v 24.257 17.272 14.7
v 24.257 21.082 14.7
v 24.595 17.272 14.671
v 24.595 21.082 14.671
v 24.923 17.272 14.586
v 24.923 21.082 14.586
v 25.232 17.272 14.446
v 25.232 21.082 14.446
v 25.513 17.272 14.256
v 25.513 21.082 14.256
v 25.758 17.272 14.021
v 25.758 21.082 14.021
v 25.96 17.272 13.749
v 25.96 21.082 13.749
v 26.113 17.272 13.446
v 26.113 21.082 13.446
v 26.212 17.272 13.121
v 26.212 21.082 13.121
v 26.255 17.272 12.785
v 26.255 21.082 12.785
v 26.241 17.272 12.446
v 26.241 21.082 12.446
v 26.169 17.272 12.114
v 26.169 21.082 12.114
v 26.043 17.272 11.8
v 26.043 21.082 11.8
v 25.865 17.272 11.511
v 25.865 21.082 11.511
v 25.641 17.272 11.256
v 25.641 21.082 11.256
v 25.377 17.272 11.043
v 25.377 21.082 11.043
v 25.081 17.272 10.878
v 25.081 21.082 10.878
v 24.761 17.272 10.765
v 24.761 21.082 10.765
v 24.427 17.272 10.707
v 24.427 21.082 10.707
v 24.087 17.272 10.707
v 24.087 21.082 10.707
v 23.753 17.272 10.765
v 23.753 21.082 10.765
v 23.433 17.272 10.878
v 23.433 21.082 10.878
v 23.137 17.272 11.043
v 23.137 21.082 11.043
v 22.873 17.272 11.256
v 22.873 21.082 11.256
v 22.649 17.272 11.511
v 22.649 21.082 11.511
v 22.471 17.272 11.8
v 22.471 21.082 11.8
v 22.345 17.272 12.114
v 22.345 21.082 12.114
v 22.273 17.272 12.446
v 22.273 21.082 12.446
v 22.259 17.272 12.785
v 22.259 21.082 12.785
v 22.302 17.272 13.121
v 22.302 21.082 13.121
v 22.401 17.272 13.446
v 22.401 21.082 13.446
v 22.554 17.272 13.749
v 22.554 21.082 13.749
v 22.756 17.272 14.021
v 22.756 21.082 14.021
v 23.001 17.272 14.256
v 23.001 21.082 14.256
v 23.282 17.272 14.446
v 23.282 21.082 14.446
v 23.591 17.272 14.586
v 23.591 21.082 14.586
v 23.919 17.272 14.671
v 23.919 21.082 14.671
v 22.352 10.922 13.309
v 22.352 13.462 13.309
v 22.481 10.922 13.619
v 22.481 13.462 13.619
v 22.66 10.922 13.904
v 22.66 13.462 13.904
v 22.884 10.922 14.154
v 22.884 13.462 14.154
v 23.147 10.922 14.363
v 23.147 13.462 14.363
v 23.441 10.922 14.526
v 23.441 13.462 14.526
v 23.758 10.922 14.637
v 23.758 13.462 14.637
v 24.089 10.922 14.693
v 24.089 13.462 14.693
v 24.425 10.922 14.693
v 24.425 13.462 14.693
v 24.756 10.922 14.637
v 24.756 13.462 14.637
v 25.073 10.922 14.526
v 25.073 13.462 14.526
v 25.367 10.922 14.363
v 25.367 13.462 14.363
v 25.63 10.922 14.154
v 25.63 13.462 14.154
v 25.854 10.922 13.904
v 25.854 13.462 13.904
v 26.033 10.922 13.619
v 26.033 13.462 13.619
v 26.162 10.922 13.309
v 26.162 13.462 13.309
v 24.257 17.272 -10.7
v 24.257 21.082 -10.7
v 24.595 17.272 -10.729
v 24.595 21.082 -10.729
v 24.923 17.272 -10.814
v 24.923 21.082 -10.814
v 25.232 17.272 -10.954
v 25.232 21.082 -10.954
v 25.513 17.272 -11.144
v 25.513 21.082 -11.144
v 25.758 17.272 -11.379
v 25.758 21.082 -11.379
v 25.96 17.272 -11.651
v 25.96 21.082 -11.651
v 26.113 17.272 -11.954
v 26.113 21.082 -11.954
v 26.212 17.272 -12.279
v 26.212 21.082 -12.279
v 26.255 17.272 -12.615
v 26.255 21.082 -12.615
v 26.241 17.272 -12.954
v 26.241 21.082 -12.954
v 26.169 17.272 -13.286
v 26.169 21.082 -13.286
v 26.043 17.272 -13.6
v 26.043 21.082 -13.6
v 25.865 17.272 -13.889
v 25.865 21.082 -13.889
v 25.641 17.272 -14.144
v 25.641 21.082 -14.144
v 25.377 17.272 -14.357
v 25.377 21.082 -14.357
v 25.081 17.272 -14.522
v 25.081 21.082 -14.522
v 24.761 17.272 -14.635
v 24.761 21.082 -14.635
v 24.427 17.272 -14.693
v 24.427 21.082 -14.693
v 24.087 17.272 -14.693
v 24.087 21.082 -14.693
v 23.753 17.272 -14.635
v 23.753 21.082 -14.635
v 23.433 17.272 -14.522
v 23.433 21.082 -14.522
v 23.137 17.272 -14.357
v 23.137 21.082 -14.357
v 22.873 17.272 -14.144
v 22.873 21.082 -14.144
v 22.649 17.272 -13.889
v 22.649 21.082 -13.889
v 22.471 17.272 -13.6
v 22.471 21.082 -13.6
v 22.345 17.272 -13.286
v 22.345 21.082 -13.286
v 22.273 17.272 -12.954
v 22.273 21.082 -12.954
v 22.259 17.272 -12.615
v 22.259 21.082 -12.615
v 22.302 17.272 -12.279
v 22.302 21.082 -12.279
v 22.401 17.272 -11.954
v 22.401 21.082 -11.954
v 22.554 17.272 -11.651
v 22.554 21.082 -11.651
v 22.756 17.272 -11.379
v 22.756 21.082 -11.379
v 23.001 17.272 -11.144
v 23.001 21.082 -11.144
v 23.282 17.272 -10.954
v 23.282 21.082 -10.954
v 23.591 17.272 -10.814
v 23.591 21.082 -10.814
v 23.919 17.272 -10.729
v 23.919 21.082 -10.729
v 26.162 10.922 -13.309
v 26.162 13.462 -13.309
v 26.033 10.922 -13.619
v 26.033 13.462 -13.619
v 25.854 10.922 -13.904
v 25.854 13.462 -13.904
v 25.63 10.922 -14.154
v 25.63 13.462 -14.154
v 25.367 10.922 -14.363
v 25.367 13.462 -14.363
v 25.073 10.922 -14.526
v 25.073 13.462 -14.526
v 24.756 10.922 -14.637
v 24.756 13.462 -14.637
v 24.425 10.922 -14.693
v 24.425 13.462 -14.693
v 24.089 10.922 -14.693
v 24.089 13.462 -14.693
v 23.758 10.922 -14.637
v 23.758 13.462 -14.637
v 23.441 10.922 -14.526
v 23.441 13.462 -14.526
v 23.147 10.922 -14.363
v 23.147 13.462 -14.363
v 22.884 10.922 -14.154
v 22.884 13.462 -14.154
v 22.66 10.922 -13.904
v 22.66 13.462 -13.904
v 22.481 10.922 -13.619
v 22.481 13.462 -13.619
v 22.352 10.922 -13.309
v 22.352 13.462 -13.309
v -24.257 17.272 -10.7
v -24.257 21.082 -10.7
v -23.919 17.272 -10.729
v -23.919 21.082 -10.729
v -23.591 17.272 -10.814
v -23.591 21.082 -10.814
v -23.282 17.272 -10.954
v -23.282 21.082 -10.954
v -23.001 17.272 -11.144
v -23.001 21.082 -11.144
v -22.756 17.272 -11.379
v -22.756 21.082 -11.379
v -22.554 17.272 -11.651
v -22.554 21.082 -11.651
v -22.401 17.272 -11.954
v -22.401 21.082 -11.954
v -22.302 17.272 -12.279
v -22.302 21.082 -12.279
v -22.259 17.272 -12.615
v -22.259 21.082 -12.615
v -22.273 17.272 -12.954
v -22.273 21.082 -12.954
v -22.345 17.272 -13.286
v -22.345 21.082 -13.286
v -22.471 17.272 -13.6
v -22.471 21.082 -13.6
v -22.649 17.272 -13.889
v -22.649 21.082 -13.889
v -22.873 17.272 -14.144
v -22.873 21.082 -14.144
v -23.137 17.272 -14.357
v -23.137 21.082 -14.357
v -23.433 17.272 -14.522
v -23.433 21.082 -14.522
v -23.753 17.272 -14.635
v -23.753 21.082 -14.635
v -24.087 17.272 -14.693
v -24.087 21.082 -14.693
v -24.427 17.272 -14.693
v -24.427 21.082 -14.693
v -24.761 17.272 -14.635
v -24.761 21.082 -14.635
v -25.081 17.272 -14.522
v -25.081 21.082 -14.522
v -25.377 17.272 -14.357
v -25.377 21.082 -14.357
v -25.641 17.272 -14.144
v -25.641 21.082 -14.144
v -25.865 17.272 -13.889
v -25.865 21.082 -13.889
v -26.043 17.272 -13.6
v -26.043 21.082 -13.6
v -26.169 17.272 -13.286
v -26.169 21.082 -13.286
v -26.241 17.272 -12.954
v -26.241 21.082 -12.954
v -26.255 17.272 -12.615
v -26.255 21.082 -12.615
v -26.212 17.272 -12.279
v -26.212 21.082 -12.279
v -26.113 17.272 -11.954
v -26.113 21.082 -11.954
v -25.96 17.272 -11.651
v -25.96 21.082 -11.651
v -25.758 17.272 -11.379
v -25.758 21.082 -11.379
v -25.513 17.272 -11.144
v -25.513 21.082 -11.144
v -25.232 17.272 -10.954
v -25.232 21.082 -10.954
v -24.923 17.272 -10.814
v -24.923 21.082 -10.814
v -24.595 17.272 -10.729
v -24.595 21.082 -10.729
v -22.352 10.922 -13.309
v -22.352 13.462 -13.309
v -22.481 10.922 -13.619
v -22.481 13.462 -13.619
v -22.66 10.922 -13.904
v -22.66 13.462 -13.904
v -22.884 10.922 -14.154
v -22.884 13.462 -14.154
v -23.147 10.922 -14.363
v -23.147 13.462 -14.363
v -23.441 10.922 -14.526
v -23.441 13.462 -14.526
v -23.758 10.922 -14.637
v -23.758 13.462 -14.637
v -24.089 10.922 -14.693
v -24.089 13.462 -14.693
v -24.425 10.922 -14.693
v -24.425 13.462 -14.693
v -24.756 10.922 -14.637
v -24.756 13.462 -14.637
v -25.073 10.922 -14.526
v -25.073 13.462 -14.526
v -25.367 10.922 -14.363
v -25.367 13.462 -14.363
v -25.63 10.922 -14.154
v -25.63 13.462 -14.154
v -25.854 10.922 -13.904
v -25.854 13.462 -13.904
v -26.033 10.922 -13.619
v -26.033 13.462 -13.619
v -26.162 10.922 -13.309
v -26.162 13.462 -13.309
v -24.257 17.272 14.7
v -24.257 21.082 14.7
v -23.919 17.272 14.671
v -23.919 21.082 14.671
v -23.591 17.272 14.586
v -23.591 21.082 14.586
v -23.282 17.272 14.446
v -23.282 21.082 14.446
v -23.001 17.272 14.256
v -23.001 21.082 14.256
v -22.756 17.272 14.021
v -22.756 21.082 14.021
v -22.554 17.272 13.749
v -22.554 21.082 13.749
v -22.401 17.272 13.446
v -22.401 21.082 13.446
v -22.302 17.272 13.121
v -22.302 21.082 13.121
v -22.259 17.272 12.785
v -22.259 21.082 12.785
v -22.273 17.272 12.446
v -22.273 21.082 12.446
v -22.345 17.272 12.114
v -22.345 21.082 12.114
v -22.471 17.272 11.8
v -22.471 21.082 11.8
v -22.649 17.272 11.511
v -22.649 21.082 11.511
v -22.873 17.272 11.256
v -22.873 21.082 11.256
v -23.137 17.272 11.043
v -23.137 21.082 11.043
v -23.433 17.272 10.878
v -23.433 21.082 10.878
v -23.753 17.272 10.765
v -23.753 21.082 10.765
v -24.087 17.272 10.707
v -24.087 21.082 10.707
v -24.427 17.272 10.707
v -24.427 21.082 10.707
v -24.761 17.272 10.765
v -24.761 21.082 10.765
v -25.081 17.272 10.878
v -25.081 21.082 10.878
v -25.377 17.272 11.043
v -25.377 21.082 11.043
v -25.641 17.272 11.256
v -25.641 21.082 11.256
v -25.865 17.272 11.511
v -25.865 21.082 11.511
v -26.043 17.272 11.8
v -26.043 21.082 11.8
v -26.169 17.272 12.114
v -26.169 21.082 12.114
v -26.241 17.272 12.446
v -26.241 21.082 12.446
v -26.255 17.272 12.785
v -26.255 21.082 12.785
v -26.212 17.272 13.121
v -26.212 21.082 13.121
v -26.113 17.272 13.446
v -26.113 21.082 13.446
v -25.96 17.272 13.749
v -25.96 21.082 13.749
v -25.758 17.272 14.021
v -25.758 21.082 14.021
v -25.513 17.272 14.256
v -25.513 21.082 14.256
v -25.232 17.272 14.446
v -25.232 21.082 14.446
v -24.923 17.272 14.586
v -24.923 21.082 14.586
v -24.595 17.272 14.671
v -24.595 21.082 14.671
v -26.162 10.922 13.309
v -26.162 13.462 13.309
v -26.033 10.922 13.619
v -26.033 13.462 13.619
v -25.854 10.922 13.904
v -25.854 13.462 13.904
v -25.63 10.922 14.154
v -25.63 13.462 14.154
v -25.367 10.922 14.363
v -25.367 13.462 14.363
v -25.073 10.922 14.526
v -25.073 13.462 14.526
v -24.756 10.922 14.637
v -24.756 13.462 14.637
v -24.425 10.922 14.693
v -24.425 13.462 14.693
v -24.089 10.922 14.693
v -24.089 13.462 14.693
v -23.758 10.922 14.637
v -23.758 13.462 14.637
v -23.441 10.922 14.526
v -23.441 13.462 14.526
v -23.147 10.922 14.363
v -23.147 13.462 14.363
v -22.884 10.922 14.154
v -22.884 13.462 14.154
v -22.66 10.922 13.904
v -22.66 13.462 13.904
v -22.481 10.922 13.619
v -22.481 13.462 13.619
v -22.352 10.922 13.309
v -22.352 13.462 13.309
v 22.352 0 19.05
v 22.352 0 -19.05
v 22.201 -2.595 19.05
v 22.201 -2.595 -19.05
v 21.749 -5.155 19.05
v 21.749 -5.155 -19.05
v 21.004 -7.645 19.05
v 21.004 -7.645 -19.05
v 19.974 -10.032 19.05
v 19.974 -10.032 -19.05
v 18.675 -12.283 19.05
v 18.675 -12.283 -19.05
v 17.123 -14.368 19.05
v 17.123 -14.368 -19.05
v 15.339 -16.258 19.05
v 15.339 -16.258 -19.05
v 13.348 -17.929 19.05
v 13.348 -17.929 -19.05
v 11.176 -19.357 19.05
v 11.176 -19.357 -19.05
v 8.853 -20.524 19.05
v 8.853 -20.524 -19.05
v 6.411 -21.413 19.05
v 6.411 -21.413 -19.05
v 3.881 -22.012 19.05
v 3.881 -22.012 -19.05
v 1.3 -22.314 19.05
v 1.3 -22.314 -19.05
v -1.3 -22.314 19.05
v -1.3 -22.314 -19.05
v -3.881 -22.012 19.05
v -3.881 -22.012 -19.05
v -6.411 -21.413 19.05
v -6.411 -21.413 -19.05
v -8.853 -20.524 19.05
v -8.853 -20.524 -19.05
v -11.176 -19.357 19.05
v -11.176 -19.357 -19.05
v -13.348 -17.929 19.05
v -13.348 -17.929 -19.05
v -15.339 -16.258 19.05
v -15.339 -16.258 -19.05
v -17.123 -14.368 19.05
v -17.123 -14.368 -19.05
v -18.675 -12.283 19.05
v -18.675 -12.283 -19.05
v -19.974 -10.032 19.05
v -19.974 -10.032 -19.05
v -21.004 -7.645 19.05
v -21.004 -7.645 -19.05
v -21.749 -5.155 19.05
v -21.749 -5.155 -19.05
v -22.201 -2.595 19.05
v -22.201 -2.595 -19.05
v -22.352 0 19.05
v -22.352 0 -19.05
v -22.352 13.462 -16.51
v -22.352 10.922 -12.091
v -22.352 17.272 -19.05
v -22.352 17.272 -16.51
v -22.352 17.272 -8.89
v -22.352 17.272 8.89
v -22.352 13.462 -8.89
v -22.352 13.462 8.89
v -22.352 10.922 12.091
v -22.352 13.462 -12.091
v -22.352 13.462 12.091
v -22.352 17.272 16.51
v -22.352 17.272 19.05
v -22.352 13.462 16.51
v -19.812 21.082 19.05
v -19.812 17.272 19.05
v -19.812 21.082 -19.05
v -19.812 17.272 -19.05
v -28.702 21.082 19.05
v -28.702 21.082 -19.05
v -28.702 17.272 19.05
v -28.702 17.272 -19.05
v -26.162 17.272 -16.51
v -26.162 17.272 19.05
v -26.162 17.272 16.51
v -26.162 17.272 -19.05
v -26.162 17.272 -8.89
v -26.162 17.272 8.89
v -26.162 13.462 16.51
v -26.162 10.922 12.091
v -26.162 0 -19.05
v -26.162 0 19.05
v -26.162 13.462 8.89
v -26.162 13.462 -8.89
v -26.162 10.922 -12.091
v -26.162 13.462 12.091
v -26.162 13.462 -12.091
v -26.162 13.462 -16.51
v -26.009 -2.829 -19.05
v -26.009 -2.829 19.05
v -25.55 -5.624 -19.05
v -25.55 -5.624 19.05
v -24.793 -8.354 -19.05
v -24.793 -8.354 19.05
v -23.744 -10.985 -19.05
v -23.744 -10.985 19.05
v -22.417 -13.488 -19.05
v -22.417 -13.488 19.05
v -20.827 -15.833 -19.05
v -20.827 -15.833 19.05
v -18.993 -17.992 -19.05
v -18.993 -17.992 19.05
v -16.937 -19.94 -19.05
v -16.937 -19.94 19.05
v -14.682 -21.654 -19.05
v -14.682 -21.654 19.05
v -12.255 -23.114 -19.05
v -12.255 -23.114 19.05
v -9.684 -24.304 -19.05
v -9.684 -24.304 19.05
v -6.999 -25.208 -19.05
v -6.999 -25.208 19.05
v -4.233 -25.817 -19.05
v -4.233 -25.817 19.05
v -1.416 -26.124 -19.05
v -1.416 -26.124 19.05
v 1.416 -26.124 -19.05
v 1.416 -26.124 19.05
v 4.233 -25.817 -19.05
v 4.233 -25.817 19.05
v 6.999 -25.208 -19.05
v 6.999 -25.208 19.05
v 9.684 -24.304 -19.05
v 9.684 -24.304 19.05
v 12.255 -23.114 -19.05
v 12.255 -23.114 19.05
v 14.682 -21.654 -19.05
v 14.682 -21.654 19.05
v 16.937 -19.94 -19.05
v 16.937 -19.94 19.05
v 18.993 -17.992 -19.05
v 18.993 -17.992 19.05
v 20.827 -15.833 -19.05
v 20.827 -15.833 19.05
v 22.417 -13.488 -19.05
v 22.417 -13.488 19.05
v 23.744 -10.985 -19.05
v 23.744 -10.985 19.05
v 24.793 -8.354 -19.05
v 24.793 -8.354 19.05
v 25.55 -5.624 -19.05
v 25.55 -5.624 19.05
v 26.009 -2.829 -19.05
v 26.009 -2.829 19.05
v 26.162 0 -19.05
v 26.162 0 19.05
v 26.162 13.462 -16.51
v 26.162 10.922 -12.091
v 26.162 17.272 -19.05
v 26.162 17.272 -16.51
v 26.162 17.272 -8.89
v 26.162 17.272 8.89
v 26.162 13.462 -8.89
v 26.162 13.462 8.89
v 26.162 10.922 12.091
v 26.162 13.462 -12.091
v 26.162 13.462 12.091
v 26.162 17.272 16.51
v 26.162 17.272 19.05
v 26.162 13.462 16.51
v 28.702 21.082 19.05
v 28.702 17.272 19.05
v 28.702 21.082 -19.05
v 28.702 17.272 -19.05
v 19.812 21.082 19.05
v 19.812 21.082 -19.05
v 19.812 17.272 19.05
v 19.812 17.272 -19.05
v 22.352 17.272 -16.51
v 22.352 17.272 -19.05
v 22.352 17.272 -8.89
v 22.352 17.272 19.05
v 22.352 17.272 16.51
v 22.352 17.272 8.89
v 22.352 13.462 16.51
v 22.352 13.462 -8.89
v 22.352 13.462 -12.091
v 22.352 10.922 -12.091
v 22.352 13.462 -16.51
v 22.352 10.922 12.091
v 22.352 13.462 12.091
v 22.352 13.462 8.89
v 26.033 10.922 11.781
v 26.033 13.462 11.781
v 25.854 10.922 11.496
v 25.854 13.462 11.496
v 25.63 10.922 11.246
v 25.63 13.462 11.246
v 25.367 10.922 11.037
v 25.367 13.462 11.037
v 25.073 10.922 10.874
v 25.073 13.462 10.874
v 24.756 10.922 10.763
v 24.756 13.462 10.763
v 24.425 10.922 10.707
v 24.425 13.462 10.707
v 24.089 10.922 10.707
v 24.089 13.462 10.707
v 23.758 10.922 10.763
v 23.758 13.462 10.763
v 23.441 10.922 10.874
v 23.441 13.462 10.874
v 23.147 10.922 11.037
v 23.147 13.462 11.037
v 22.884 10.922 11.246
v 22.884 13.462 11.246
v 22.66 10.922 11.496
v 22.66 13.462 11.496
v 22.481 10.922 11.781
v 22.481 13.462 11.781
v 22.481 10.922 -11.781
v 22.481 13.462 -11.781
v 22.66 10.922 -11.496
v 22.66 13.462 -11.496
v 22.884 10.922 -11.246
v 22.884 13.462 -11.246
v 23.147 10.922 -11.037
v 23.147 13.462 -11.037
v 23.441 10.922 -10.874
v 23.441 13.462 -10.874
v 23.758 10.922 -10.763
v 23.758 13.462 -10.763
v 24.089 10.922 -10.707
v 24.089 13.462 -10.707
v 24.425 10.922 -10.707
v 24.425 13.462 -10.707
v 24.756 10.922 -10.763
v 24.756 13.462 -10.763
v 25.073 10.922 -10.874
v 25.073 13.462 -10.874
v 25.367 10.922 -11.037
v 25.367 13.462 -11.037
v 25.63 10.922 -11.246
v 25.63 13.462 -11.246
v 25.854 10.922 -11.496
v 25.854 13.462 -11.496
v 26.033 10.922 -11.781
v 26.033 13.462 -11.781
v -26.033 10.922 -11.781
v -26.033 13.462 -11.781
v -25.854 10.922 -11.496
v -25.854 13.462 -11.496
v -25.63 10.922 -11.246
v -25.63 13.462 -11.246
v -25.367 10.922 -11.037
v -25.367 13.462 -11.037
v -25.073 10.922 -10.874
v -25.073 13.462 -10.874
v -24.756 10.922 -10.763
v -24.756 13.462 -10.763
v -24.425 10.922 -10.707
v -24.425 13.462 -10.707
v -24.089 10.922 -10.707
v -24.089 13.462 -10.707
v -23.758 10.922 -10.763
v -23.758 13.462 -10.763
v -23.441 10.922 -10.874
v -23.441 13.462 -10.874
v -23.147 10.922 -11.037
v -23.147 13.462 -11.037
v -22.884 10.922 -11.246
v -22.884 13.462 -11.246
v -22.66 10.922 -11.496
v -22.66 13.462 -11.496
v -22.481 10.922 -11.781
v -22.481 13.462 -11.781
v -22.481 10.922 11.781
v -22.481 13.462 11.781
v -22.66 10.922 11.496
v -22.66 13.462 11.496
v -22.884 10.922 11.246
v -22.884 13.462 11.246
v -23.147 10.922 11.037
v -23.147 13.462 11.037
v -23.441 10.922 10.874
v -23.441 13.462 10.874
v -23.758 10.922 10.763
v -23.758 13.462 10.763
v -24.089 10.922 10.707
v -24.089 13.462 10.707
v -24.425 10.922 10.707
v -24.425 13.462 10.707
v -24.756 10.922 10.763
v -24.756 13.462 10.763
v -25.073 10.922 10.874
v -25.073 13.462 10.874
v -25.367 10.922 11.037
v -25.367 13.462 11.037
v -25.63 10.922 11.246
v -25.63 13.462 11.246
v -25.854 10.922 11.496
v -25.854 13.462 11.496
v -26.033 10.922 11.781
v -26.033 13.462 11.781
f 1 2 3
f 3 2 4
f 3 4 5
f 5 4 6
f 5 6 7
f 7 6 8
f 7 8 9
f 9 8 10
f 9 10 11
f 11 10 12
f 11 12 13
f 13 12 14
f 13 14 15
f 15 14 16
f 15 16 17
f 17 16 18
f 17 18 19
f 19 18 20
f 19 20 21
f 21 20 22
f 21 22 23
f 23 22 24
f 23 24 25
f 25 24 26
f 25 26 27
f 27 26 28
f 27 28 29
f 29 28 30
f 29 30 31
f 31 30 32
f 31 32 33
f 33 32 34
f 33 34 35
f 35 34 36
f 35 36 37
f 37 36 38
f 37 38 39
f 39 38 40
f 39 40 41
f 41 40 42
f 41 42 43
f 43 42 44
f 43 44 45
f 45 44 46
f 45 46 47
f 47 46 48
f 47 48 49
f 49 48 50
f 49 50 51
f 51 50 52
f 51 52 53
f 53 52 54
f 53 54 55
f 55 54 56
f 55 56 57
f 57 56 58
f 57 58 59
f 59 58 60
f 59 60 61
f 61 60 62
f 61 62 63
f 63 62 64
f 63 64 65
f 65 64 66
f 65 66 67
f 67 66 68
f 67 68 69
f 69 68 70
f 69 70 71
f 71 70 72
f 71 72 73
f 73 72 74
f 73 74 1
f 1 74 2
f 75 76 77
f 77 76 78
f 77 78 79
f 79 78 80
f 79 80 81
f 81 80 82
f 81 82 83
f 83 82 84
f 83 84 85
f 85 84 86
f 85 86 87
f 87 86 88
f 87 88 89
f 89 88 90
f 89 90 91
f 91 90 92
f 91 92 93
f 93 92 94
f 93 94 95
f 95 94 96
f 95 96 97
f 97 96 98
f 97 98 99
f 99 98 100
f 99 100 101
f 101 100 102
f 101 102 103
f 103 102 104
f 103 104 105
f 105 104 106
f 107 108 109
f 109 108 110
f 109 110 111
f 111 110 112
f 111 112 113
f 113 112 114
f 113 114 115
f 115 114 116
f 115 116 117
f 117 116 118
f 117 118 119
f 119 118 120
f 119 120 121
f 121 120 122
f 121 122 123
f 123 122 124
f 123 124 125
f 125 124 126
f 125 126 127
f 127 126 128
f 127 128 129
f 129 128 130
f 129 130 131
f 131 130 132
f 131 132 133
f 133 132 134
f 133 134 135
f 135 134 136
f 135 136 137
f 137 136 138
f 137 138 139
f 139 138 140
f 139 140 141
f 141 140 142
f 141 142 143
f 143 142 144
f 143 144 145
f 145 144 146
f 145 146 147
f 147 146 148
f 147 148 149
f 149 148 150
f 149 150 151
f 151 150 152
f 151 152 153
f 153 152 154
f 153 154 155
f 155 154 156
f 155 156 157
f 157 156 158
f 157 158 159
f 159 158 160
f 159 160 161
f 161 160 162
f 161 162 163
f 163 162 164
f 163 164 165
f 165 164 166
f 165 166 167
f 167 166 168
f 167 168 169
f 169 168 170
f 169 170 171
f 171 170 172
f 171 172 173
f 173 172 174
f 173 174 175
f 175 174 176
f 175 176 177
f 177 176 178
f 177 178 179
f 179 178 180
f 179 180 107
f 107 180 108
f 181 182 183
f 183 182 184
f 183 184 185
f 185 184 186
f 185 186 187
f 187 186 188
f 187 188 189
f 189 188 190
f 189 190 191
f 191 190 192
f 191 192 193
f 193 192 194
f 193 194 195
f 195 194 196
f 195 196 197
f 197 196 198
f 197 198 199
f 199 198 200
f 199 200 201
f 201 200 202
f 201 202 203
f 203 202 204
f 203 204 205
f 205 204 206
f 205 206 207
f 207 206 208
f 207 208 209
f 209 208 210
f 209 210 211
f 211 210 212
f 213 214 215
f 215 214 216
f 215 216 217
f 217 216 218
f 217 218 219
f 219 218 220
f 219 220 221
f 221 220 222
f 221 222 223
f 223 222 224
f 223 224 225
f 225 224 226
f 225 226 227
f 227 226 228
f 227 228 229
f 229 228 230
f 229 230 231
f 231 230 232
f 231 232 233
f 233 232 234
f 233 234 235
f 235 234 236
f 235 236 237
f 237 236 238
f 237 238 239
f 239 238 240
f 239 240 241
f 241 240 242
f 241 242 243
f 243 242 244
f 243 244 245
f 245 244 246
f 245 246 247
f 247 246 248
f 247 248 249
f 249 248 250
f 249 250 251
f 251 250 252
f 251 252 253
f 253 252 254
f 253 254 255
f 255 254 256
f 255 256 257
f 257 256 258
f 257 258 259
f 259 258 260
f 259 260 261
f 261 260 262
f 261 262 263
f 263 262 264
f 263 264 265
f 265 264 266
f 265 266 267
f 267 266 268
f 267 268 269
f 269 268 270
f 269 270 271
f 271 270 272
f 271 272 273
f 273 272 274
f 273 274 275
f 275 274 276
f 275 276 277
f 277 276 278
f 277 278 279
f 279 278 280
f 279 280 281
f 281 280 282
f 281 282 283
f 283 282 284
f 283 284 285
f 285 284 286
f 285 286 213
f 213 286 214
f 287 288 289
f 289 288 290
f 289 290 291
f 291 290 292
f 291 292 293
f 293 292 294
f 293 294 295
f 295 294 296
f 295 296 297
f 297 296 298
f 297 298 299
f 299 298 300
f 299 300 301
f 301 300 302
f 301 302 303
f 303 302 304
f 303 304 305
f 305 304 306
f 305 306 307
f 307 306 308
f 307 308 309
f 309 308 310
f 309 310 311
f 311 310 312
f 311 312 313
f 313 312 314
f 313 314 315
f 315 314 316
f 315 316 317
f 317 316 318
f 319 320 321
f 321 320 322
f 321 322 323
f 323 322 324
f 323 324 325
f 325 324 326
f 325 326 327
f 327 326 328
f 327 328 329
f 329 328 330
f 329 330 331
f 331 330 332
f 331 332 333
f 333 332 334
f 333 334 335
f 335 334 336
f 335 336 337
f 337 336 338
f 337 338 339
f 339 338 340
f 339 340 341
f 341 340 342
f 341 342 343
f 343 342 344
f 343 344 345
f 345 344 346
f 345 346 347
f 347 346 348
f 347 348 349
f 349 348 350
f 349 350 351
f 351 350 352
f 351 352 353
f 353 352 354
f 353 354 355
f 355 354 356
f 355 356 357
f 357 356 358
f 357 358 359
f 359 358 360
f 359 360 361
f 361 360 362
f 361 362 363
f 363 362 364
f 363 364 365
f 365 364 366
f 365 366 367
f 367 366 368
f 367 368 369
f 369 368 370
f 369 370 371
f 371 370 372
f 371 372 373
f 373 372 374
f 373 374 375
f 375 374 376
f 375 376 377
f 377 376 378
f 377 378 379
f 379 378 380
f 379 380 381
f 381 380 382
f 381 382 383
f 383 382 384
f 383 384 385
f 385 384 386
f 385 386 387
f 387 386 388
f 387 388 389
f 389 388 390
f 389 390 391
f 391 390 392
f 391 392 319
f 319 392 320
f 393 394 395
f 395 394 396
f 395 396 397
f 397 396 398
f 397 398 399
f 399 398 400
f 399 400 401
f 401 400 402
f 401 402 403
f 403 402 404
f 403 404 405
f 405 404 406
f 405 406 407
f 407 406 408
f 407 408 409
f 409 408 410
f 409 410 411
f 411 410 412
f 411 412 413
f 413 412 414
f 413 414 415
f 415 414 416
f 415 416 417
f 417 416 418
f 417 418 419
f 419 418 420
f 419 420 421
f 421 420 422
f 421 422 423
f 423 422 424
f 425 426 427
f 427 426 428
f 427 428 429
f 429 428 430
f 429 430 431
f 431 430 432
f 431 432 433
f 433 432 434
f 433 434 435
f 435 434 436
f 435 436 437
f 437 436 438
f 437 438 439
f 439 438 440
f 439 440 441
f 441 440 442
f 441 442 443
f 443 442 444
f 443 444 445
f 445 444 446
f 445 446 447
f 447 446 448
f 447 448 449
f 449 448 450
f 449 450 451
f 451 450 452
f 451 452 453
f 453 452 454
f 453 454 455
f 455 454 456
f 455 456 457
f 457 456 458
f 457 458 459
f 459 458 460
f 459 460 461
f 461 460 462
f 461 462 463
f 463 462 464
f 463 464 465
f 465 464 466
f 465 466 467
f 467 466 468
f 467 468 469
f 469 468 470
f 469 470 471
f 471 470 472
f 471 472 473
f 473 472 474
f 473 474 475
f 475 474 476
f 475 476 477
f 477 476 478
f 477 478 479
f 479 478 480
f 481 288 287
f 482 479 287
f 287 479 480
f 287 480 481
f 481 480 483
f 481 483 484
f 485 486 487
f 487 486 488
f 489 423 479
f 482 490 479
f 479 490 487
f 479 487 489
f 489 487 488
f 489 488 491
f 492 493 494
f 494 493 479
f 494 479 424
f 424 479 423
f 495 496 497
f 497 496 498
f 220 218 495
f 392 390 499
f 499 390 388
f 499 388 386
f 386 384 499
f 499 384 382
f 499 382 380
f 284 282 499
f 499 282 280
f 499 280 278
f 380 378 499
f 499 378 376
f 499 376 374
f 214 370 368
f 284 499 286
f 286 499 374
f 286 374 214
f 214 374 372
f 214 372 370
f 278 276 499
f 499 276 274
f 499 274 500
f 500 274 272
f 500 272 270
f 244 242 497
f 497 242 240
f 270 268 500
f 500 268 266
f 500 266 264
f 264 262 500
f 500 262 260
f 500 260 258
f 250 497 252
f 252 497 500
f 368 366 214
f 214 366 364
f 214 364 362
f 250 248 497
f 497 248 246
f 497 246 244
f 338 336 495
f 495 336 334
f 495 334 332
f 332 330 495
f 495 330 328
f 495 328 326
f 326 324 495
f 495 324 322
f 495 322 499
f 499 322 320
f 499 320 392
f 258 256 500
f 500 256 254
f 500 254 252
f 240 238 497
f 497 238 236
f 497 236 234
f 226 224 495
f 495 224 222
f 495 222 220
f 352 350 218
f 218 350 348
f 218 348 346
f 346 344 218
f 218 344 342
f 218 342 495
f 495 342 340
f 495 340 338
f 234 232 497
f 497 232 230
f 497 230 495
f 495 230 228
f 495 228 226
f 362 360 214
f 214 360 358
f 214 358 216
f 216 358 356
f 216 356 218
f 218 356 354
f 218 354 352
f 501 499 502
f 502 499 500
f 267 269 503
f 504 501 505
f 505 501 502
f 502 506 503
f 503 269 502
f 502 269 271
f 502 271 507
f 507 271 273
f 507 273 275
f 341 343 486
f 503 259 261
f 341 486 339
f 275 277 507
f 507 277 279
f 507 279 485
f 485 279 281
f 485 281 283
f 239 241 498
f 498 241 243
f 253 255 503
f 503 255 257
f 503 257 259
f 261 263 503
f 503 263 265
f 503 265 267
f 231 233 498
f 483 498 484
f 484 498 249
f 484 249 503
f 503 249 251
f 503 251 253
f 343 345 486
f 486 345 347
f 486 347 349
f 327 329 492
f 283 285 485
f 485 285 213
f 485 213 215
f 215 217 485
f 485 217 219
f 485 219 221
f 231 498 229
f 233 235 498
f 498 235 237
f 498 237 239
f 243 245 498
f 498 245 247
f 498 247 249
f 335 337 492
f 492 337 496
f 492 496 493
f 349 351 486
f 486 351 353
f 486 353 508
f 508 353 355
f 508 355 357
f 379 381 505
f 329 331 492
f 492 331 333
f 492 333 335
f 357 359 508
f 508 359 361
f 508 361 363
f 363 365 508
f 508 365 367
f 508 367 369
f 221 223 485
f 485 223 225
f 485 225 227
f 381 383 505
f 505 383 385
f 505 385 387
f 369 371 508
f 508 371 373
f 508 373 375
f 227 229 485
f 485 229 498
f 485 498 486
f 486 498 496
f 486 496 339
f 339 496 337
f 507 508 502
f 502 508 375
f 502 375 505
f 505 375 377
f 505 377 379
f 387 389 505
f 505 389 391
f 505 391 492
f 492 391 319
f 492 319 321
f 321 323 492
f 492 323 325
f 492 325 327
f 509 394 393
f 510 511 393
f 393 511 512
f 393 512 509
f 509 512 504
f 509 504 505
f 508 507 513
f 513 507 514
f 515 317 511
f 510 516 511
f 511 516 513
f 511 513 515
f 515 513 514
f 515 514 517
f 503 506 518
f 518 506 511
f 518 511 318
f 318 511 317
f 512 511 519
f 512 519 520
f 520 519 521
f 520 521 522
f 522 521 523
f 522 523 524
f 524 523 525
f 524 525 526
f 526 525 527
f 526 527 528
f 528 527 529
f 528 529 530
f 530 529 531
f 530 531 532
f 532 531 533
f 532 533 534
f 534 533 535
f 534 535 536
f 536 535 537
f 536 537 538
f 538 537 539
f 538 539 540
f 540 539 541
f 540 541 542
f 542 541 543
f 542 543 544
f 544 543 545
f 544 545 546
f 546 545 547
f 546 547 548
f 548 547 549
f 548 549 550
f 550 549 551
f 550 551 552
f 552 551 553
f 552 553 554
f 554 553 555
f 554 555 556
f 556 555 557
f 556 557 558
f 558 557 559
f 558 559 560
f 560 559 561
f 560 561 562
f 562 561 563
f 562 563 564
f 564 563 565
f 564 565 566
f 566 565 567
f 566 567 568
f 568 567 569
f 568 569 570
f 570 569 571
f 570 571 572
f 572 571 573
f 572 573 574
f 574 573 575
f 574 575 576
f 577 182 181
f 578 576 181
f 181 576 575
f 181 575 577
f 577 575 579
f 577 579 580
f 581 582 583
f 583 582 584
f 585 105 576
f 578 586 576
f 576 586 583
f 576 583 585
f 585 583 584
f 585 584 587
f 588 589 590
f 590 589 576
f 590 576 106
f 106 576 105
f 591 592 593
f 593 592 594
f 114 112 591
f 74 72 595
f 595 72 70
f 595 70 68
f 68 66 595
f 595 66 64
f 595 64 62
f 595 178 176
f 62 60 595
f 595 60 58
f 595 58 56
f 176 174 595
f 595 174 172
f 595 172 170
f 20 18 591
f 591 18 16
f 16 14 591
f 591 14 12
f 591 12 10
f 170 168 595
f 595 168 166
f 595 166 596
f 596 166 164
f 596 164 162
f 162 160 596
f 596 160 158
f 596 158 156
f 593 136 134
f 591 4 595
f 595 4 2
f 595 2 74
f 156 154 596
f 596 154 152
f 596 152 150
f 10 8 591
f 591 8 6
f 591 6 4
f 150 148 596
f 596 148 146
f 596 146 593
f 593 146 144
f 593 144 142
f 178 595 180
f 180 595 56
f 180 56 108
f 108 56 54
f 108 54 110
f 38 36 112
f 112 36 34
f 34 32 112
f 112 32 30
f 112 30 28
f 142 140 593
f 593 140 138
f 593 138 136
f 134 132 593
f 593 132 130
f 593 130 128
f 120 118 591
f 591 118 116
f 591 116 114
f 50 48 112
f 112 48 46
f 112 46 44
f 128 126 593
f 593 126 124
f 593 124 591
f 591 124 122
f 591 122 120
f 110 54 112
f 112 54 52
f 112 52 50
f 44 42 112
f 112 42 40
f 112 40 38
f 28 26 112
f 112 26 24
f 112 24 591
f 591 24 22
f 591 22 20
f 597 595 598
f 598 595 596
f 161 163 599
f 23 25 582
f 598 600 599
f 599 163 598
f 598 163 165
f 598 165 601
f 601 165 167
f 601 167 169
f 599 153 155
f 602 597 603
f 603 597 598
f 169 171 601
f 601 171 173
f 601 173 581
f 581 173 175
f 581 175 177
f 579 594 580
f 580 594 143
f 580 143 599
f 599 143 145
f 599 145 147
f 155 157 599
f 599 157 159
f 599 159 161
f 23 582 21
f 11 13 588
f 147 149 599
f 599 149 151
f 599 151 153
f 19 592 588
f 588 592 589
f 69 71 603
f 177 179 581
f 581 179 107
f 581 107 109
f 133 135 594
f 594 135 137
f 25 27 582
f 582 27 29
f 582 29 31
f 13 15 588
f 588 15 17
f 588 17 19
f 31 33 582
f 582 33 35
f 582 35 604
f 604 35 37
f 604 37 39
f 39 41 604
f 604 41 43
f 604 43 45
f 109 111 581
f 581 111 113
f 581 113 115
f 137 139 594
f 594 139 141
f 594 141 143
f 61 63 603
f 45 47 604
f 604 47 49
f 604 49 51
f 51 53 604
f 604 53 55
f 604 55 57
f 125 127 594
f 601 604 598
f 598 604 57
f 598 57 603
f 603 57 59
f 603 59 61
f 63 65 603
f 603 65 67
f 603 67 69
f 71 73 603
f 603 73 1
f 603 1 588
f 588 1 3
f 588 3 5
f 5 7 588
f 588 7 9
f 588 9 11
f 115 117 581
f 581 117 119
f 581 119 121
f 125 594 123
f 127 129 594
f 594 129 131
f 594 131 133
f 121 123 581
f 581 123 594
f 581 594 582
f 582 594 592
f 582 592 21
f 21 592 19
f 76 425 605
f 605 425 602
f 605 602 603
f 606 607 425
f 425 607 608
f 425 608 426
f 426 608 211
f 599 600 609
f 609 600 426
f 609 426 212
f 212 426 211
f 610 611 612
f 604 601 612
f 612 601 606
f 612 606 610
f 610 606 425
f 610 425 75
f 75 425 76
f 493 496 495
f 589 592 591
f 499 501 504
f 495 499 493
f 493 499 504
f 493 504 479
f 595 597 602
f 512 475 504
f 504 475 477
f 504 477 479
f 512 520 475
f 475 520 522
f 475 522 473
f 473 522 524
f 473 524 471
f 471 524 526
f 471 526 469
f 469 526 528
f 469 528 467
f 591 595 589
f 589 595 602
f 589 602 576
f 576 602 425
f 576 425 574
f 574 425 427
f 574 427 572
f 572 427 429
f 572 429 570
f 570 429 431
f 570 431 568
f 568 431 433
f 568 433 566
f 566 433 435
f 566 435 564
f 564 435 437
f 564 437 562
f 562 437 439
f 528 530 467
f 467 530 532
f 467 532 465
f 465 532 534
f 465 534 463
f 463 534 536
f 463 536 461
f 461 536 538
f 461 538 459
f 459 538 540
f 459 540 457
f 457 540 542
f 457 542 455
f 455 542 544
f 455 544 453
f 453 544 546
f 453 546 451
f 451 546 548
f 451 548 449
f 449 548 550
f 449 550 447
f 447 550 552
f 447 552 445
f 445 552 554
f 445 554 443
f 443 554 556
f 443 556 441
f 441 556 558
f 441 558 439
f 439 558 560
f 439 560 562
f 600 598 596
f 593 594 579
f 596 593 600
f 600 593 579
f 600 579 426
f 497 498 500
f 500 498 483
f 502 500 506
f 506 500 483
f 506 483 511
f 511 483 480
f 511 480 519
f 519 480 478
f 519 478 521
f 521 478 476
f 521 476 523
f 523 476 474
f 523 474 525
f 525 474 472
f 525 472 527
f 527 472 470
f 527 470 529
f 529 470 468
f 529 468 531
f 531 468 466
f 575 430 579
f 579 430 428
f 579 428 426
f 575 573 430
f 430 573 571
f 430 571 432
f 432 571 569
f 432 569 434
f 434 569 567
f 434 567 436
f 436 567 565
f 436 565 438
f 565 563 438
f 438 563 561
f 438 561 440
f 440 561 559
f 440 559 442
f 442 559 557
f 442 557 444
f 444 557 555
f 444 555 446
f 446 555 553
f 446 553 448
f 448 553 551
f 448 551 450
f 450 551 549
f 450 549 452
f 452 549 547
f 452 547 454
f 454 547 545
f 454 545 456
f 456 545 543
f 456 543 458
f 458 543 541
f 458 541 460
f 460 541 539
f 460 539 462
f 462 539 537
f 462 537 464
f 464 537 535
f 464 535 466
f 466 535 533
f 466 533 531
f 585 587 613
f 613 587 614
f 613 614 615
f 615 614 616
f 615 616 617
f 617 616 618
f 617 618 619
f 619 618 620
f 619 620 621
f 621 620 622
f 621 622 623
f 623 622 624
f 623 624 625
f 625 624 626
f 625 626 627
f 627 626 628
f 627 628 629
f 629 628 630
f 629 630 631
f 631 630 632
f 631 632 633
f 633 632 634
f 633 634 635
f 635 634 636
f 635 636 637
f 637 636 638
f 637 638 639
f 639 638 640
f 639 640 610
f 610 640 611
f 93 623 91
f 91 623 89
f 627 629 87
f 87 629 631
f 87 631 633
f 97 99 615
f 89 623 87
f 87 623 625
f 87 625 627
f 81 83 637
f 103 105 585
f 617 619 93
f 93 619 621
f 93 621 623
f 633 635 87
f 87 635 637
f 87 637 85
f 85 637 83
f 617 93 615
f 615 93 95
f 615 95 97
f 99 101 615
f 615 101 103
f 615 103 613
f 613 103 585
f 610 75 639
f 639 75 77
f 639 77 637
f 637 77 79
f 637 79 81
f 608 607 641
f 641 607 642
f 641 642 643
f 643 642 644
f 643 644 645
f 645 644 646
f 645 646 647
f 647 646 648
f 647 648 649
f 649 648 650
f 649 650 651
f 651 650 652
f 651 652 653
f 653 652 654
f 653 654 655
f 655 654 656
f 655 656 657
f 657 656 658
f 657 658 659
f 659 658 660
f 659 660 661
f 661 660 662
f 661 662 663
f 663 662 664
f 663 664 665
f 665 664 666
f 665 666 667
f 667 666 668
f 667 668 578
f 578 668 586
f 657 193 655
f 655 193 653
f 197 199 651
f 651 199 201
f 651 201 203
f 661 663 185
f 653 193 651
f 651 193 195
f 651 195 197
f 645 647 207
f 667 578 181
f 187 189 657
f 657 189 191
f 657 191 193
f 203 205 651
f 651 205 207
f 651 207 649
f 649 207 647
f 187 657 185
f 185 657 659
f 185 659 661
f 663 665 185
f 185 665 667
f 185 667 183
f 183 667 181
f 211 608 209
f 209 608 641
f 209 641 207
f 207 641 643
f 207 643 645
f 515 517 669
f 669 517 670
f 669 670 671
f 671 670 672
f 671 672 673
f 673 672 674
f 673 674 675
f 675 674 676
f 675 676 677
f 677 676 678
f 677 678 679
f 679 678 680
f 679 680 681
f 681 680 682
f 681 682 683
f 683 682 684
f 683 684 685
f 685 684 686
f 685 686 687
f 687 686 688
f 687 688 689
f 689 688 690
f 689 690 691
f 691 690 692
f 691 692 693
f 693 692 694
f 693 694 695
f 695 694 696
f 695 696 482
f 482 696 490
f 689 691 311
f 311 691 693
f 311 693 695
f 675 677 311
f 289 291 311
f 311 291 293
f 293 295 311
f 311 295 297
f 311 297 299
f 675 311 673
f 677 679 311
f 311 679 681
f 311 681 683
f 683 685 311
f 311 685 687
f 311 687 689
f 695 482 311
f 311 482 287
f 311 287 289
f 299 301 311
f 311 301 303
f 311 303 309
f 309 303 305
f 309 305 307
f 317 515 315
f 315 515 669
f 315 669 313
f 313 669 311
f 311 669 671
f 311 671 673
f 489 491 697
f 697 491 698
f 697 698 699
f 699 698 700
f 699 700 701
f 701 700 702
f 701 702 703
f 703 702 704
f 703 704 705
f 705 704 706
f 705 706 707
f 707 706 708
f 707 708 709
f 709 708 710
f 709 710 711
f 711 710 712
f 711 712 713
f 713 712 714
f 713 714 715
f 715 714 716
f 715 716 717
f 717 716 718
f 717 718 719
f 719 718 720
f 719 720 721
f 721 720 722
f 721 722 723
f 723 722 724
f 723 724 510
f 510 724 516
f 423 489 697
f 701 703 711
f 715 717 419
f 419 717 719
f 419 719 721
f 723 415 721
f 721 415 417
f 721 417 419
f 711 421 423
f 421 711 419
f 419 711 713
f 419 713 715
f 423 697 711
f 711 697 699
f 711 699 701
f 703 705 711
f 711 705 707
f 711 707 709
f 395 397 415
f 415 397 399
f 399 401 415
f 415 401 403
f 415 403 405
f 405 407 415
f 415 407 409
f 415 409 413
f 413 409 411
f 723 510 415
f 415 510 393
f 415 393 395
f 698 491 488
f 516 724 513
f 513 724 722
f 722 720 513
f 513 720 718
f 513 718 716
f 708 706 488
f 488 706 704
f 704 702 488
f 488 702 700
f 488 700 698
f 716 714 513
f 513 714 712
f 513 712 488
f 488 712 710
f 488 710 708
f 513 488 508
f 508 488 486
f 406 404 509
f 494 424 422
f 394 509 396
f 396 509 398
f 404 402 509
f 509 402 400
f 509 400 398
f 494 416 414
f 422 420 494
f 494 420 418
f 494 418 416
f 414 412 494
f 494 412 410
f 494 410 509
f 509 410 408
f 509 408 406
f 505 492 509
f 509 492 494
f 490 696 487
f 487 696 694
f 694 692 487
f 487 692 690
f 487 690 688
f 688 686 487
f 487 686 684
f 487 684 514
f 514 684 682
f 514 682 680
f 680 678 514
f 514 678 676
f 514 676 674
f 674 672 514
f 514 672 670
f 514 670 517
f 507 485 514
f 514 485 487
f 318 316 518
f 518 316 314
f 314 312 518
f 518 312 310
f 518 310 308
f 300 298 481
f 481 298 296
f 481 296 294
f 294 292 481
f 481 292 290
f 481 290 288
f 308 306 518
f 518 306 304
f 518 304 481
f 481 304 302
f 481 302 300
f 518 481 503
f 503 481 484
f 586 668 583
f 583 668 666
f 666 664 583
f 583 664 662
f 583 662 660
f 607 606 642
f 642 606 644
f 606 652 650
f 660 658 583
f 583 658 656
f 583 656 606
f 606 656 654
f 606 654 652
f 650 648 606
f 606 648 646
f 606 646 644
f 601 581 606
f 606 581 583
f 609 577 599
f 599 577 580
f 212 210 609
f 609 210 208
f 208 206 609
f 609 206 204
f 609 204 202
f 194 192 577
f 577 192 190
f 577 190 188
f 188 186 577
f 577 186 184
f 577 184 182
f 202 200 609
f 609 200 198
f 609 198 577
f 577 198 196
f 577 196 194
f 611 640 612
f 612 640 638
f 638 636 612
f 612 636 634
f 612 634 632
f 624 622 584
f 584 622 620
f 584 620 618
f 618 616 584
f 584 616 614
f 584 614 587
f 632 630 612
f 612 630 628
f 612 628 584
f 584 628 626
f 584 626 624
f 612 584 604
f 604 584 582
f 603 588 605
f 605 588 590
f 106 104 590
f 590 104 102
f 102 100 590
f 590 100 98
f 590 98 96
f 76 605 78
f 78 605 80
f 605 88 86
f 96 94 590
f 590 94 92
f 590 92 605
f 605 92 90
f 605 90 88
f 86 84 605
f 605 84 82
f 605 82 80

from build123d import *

# Parameters (mm, degrees)
BOSS_EXTRUDE1_DEPTH = 19.05
SKETCH2_R           = 2
CUT_EXTRUDE1_DEPTH  = 10.16
SKETCH3_W           = 7.62
SKETCH3_H           = 3.81
CUT_EXTRUDE2_DEPTH  = 64.697811893


with BuildPart() as part:
    # Sketch1 → Boss-Extrude1 (new, symmetric)
    with BuildSketch(Plane.XY):
        with BuildLine():
            Line((-22.352, 0), (-22.352, 17.272))
            Line((-22.352, 17.272), (-19.812, 17.272))
            Line((-19.812, 17.272), (-19.812, 21.082))
            Line((-19.812, 21.082), (-28.702, 21.082))
            Line((-28.702, 21.082), (-28.702, 17.272))
            Line((-28.702, 17.272), (-26.162, 17.272))
            Line((-26.162, 17.272), (-26.162, 0))
            ThreePointArc((-26.162, 0), (0, -26.162), (26.162, 0))
            Line((26.162, 0), (26.162, 17.272))
            Line((26.162, 17.272), (28.702, 17.272))
            Line((28.702, 17.272), (28.702, 21.082))
            Line((28.702, 21.082), (19.812, 21.082))
            Line((19.812, 21.082), (19.812, 17.272))
            Line((19.812, 17.272), (22.352, 17.272))
            Line((22.352, 17.272), (22.352, 0))
            ThreePointArc((22.352, 0), (0, -22.352), (-22.352, 0))
        make_face()
    extrude(amount=BOSS_EXTRUDE1_DEPTH, both=True)

    # Sketch2 → Cut-Extrude1 (cut)
    with BuildSketch(Plane(origin=(0, 21.082, 0), x_dir=(1, 0, 0), z_dir=(0, 1, 0))):
        with Locations(Location((-24.257, 12.7, 0), (0, 0, 270))):
            Circle(SKETCH2_R)
        with Locations(Location((-24.257, -12.7, 0), (0, 0, 270))):
            Circle(SKETCH2_R)
        with Locations(Location((24.257, -12.7, 0), (0, 0, 270))):
            Circle(SKETCH2_R)
        with Locations(Location((24.257, 12.7, 0), (0, 0, 270))):
            Circle(SKETCH2_R)
    extrude(amount=-CUT_EXTRUDE1_DEPTH, mode=Mode.SUBTRACT)

    # Sketch3 → Cut-Extrude2 (cut, through all)
    with BuildSketch(Plane.ZY.offset(26.162)):
        with Locations((-12.7, 15.367)):
            Rectangle(SKETCH3_W, SKETCH3_H)
        with Locations((12.7, 15.367)):
            Rectangle(SKETCH3_W, SKETCH3_H)
    extrude(amount=-CUT_EXTRUDE2_DEPTH, mode=Mode.SUBTRACT)


solid = part.part
